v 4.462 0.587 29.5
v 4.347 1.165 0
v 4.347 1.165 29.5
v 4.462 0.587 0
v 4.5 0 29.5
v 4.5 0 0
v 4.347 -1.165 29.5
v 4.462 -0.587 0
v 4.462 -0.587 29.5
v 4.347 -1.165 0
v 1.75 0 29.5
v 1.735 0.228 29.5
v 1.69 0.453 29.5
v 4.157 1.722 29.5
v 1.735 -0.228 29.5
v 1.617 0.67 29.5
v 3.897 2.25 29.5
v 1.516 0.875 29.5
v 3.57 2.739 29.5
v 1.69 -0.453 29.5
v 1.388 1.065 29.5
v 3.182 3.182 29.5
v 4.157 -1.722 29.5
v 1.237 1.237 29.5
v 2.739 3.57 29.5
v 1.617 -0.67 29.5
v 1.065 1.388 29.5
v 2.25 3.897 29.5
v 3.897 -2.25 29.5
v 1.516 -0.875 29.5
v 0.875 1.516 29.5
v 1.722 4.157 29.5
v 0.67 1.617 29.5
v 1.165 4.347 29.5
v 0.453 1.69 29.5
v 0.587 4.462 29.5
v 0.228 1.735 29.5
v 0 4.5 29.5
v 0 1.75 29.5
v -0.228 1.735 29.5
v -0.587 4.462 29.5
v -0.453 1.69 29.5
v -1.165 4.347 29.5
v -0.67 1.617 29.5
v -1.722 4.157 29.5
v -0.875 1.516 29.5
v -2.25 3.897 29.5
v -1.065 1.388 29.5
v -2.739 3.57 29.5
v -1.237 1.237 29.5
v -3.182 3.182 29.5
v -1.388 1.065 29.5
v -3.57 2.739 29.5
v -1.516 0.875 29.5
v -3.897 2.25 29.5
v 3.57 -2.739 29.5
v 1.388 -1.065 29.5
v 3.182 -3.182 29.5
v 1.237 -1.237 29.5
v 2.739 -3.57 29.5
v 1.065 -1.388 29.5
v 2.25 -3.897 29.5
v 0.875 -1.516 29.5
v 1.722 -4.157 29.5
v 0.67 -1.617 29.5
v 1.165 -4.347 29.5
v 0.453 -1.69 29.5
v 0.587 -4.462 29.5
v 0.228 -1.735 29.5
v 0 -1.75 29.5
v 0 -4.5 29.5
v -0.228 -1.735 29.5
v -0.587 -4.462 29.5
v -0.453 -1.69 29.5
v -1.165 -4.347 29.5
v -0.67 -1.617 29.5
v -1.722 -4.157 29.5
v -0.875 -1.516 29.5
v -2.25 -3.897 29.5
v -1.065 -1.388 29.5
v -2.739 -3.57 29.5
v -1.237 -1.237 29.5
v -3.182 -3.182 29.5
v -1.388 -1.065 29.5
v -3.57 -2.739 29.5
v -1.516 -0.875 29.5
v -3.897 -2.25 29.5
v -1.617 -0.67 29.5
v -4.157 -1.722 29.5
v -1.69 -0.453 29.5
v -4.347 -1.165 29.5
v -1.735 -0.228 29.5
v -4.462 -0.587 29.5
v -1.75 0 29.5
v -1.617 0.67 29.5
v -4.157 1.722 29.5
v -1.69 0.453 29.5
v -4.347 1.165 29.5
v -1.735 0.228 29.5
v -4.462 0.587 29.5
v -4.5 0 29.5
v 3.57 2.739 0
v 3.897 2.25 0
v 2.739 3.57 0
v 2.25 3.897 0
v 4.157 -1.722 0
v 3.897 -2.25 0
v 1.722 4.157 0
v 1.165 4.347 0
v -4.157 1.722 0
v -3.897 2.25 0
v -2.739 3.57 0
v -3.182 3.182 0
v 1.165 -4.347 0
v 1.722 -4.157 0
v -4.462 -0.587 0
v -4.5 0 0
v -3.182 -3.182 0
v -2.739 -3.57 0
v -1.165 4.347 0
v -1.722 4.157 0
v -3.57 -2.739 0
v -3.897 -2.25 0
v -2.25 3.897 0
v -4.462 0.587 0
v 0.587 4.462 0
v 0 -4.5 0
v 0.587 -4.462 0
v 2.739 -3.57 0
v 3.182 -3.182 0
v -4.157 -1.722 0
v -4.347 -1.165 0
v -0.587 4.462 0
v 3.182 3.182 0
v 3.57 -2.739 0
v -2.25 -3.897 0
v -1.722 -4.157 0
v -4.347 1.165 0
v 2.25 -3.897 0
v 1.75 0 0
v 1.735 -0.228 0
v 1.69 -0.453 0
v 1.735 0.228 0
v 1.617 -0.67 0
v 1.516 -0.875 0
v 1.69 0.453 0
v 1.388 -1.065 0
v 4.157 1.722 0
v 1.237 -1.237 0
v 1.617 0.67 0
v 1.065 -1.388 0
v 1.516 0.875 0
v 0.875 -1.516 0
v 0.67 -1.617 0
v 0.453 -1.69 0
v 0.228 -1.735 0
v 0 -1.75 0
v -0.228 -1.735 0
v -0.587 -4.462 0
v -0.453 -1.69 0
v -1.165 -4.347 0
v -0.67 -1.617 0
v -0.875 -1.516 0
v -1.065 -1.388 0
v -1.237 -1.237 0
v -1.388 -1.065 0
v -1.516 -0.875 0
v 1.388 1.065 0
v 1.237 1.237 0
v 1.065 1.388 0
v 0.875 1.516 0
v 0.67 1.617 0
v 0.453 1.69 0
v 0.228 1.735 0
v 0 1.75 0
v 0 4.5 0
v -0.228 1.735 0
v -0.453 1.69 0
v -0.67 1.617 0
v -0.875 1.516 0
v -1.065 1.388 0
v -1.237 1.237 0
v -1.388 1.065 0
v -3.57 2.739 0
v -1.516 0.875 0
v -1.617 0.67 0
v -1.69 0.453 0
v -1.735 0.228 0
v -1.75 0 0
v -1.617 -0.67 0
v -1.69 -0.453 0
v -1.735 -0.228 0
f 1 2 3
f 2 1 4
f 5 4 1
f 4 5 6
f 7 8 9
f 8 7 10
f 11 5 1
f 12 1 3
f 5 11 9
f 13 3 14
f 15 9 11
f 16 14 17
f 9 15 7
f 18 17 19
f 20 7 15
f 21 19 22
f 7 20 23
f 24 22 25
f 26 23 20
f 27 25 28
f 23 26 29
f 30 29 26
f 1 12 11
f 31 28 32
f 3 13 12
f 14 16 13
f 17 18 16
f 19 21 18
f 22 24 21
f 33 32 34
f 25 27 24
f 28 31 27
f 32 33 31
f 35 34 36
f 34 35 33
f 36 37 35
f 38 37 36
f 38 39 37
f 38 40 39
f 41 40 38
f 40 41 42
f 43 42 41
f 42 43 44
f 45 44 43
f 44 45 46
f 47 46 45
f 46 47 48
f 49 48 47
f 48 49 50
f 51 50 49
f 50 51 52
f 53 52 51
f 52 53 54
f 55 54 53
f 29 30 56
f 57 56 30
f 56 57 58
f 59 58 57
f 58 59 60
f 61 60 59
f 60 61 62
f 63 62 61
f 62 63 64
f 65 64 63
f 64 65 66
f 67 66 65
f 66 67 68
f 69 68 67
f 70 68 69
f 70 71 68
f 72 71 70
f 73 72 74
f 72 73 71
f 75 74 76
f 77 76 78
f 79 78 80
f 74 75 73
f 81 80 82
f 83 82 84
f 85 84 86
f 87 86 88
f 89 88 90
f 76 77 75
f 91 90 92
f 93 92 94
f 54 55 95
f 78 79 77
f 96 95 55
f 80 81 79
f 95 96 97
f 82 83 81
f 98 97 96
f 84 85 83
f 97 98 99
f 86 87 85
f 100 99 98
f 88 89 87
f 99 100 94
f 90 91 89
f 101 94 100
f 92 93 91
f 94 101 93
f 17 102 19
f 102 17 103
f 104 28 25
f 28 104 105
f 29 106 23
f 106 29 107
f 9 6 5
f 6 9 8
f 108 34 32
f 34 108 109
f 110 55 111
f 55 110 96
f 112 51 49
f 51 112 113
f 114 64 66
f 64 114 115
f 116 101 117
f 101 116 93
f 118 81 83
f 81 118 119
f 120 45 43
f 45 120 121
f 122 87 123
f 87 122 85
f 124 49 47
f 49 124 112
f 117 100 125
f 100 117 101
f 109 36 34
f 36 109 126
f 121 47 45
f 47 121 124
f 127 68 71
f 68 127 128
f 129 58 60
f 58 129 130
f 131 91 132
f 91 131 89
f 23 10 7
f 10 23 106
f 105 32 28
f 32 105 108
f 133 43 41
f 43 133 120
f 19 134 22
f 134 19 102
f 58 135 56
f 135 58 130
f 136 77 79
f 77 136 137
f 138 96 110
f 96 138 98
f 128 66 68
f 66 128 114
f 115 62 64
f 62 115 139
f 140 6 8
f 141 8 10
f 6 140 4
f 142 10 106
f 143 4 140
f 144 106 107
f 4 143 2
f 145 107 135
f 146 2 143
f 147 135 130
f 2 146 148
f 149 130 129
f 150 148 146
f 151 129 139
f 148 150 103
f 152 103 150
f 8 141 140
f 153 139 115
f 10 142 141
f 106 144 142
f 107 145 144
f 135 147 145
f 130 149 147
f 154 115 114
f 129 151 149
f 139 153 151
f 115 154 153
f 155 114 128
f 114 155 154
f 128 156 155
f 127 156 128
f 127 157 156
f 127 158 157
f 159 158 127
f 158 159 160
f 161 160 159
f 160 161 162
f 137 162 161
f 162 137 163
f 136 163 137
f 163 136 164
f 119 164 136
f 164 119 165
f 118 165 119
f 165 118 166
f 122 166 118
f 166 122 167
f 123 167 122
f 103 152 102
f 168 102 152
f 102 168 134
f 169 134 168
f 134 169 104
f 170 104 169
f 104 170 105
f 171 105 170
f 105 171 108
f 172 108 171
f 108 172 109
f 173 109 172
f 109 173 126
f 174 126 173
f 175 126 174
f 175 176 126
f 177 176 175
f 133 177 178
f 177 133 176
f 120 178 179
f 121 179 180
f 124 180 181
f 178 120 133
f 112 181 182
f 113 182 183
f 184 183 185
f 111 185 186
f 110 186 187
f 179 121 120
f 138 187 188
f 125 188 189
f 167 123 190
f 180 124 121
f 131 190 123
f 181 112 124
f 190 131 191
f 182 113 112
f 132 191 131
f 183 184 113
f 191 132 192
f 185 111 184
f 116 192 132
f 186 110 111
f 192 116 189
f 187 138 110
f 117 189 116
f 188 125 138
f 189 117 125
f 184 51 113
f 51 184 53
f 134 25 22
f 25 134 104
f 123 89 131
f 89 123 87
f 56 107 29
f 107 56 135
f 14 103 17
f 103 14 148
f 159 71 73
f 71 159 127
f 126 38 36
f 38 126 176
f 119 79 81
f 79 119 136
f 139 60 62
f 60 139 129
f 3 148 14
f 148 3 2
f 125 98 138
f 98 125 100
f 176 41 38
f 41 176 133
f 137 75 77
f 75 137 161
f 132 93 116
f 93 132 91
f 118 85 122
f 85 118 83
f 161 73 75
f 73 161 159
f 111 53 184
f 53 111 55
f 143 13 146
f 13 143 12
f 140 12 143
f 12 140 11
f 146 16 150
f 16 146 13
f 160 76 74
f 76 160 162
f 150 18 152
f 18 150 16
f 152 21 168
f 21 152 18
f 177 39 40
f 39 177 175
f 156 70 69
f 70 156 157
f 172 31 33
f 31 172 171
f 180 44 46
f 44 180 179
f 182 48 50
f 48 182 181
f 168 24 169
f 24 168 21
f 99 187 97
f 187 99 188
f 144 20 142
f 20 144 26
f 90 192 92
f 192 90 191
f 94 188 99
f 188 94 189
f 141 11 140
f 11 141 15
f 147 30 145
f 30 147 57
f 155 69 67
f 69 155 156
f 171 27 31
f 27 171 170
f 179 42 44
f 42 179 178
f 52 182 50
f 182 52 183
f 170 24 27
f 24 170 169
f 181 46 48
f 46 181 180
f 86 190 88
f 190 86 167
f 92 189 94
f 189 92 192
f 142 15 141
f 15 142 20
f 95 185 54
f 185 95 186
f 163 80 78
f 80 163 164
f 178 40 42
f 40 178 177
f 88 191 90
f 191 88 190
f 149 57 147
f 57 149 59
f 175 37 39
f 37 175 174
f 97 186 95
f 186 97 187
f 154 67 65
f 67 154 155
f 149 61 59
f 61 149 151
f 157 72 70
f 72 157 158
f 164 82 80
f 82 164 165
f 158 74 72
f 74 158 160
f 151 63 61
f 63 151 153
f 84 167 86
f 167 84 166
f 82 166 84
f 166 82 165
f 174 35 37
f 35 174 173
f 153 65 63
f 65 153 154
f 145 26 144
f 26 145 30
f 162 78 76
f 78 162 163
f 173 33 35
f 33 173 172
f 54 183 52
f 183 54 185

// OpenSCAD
// Gen-CR — frame standoff tube between stator and an endbell, on each M3 frame rod (outside rotor OD).
// Print x4. Height = frame_standoff_h (rotor + steel + hub + collar + running clearance).
include <parameters.scad>;
$fn = 48;
difference() {
    cylinder(d=standoff_od, h=frame_standoff_h);
    translate([0, 0, -0.1]) cylinder(d=m3_clear, h=frame_standoff_h + 0.2);
}
